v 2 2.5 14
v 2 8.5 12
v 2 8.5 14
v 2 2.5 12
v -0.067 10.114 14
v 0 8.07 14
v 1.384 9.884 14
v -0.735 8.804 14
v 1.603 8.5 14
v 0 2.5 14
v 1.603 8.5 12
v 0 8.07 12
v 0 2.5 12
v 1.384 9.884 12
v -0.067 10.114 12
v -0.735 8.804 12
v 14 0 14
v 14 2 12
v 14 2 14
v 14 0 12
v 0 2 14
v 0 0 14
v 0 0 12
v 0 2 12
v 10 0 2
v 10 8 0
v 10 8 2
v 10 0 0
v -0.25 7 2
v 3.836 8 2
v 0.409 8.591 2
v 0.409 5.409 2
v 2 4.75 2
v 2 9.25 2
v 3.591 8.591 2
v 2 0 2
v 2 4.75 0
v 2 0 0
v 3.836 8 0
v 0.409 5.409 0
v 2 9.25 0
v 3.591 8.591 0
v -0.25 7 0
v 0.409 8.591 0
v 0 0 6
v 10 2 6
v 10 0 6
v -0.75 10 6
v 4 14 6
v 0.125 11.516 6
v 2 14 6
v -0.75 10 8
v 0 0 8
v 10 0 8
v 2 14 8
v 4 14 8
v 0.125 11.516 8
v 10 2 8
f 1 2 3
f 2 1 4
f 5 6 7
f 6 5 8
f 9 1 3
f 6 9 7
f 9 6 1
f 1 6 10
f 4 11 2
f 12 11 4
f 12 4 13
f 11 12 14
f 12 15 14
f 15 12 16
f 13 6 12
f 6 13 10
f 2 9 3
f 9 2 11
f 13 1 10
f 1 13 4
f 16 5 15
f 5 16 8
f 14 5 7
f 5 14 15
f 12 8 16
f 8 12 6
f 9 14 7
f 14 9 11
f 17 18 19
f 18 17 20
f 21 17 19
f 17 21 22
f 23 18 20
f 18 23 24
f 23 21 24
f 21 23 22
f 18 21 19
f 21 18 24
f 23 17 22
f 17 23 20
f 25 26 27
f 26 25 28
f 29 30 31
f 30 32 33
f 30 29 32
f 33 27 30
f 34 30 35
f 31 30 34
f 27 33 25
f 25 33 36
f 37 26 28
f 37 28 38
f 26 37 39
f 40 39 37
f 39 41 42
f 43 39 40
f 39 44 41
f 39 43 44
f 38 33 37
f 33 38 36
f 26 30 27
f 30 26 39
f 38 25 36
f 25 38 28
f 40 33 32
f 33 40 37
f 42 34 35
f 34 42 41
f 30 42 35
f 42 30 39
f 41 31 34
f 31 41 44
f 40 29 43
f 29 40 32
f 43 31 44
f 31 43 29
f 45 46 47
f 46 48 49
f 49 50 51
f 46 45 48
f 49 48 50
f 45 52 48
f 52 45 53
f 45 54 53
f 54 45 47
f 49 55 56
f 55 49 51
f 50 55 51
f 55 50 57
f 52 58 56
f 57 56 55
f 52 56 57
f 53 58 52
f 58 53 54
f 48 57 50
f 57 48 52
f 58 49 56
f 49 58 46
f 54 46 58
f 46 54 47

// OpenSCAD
// Define bracket dimensions
module bracket_A() {
    // Longer arm with corrected proportions
    cube([14, 2, 2]); // Length adjusted to match original model

    // Shorter arm with improved rounded edge and alignment
    translate([0, 2.5, 0]) {
        cube([2, 6, 2], center = false);
        translate([0.5, 6.5, 0]) // Adjusted alignment
            rotate([0, 0, 45])
            cylinder(h = 2, r = 1.25, center = false); // Improved curve smoothness
    }
}

module bracket_B() {
    // Rectangular features with pronounced corner curve and corrected proportions
    hull() {
        cube([10, 2, 2]);
        translate([2, 6, 0])
            cube([2, 8, 2], center = false); // Adjusted length
        translate([1, 10, 0]) // Corrected placement
            cylinder(h = 2, r = 1.75, center = false); // More pronounced curve
    }
}

module bracket_C() {
    // Adjusted corner rounding, lengths, and angles to match original
    translate([2, 0, 0]) {
        cube([8, 8, 2]);
        translate([0, 7, 0]) // Corrected alignment
            cylinder(h = 2, r = 2.25, center = false); // Improved smooth corner
    }
}

// Assembly of the brackets based on positional relationships
module assembly() {
    translate([0, 0, 12]) // Adjusted spacing to better align with the original model
        bracket_A();
    translate([0, 0, 6]) // Corrected alignment and spacing
        bracket_B();
    translate([0, 0, 0]) // Position adjustment for bracket_C
        bracket_C();
}

// Generate the model
assembly();
